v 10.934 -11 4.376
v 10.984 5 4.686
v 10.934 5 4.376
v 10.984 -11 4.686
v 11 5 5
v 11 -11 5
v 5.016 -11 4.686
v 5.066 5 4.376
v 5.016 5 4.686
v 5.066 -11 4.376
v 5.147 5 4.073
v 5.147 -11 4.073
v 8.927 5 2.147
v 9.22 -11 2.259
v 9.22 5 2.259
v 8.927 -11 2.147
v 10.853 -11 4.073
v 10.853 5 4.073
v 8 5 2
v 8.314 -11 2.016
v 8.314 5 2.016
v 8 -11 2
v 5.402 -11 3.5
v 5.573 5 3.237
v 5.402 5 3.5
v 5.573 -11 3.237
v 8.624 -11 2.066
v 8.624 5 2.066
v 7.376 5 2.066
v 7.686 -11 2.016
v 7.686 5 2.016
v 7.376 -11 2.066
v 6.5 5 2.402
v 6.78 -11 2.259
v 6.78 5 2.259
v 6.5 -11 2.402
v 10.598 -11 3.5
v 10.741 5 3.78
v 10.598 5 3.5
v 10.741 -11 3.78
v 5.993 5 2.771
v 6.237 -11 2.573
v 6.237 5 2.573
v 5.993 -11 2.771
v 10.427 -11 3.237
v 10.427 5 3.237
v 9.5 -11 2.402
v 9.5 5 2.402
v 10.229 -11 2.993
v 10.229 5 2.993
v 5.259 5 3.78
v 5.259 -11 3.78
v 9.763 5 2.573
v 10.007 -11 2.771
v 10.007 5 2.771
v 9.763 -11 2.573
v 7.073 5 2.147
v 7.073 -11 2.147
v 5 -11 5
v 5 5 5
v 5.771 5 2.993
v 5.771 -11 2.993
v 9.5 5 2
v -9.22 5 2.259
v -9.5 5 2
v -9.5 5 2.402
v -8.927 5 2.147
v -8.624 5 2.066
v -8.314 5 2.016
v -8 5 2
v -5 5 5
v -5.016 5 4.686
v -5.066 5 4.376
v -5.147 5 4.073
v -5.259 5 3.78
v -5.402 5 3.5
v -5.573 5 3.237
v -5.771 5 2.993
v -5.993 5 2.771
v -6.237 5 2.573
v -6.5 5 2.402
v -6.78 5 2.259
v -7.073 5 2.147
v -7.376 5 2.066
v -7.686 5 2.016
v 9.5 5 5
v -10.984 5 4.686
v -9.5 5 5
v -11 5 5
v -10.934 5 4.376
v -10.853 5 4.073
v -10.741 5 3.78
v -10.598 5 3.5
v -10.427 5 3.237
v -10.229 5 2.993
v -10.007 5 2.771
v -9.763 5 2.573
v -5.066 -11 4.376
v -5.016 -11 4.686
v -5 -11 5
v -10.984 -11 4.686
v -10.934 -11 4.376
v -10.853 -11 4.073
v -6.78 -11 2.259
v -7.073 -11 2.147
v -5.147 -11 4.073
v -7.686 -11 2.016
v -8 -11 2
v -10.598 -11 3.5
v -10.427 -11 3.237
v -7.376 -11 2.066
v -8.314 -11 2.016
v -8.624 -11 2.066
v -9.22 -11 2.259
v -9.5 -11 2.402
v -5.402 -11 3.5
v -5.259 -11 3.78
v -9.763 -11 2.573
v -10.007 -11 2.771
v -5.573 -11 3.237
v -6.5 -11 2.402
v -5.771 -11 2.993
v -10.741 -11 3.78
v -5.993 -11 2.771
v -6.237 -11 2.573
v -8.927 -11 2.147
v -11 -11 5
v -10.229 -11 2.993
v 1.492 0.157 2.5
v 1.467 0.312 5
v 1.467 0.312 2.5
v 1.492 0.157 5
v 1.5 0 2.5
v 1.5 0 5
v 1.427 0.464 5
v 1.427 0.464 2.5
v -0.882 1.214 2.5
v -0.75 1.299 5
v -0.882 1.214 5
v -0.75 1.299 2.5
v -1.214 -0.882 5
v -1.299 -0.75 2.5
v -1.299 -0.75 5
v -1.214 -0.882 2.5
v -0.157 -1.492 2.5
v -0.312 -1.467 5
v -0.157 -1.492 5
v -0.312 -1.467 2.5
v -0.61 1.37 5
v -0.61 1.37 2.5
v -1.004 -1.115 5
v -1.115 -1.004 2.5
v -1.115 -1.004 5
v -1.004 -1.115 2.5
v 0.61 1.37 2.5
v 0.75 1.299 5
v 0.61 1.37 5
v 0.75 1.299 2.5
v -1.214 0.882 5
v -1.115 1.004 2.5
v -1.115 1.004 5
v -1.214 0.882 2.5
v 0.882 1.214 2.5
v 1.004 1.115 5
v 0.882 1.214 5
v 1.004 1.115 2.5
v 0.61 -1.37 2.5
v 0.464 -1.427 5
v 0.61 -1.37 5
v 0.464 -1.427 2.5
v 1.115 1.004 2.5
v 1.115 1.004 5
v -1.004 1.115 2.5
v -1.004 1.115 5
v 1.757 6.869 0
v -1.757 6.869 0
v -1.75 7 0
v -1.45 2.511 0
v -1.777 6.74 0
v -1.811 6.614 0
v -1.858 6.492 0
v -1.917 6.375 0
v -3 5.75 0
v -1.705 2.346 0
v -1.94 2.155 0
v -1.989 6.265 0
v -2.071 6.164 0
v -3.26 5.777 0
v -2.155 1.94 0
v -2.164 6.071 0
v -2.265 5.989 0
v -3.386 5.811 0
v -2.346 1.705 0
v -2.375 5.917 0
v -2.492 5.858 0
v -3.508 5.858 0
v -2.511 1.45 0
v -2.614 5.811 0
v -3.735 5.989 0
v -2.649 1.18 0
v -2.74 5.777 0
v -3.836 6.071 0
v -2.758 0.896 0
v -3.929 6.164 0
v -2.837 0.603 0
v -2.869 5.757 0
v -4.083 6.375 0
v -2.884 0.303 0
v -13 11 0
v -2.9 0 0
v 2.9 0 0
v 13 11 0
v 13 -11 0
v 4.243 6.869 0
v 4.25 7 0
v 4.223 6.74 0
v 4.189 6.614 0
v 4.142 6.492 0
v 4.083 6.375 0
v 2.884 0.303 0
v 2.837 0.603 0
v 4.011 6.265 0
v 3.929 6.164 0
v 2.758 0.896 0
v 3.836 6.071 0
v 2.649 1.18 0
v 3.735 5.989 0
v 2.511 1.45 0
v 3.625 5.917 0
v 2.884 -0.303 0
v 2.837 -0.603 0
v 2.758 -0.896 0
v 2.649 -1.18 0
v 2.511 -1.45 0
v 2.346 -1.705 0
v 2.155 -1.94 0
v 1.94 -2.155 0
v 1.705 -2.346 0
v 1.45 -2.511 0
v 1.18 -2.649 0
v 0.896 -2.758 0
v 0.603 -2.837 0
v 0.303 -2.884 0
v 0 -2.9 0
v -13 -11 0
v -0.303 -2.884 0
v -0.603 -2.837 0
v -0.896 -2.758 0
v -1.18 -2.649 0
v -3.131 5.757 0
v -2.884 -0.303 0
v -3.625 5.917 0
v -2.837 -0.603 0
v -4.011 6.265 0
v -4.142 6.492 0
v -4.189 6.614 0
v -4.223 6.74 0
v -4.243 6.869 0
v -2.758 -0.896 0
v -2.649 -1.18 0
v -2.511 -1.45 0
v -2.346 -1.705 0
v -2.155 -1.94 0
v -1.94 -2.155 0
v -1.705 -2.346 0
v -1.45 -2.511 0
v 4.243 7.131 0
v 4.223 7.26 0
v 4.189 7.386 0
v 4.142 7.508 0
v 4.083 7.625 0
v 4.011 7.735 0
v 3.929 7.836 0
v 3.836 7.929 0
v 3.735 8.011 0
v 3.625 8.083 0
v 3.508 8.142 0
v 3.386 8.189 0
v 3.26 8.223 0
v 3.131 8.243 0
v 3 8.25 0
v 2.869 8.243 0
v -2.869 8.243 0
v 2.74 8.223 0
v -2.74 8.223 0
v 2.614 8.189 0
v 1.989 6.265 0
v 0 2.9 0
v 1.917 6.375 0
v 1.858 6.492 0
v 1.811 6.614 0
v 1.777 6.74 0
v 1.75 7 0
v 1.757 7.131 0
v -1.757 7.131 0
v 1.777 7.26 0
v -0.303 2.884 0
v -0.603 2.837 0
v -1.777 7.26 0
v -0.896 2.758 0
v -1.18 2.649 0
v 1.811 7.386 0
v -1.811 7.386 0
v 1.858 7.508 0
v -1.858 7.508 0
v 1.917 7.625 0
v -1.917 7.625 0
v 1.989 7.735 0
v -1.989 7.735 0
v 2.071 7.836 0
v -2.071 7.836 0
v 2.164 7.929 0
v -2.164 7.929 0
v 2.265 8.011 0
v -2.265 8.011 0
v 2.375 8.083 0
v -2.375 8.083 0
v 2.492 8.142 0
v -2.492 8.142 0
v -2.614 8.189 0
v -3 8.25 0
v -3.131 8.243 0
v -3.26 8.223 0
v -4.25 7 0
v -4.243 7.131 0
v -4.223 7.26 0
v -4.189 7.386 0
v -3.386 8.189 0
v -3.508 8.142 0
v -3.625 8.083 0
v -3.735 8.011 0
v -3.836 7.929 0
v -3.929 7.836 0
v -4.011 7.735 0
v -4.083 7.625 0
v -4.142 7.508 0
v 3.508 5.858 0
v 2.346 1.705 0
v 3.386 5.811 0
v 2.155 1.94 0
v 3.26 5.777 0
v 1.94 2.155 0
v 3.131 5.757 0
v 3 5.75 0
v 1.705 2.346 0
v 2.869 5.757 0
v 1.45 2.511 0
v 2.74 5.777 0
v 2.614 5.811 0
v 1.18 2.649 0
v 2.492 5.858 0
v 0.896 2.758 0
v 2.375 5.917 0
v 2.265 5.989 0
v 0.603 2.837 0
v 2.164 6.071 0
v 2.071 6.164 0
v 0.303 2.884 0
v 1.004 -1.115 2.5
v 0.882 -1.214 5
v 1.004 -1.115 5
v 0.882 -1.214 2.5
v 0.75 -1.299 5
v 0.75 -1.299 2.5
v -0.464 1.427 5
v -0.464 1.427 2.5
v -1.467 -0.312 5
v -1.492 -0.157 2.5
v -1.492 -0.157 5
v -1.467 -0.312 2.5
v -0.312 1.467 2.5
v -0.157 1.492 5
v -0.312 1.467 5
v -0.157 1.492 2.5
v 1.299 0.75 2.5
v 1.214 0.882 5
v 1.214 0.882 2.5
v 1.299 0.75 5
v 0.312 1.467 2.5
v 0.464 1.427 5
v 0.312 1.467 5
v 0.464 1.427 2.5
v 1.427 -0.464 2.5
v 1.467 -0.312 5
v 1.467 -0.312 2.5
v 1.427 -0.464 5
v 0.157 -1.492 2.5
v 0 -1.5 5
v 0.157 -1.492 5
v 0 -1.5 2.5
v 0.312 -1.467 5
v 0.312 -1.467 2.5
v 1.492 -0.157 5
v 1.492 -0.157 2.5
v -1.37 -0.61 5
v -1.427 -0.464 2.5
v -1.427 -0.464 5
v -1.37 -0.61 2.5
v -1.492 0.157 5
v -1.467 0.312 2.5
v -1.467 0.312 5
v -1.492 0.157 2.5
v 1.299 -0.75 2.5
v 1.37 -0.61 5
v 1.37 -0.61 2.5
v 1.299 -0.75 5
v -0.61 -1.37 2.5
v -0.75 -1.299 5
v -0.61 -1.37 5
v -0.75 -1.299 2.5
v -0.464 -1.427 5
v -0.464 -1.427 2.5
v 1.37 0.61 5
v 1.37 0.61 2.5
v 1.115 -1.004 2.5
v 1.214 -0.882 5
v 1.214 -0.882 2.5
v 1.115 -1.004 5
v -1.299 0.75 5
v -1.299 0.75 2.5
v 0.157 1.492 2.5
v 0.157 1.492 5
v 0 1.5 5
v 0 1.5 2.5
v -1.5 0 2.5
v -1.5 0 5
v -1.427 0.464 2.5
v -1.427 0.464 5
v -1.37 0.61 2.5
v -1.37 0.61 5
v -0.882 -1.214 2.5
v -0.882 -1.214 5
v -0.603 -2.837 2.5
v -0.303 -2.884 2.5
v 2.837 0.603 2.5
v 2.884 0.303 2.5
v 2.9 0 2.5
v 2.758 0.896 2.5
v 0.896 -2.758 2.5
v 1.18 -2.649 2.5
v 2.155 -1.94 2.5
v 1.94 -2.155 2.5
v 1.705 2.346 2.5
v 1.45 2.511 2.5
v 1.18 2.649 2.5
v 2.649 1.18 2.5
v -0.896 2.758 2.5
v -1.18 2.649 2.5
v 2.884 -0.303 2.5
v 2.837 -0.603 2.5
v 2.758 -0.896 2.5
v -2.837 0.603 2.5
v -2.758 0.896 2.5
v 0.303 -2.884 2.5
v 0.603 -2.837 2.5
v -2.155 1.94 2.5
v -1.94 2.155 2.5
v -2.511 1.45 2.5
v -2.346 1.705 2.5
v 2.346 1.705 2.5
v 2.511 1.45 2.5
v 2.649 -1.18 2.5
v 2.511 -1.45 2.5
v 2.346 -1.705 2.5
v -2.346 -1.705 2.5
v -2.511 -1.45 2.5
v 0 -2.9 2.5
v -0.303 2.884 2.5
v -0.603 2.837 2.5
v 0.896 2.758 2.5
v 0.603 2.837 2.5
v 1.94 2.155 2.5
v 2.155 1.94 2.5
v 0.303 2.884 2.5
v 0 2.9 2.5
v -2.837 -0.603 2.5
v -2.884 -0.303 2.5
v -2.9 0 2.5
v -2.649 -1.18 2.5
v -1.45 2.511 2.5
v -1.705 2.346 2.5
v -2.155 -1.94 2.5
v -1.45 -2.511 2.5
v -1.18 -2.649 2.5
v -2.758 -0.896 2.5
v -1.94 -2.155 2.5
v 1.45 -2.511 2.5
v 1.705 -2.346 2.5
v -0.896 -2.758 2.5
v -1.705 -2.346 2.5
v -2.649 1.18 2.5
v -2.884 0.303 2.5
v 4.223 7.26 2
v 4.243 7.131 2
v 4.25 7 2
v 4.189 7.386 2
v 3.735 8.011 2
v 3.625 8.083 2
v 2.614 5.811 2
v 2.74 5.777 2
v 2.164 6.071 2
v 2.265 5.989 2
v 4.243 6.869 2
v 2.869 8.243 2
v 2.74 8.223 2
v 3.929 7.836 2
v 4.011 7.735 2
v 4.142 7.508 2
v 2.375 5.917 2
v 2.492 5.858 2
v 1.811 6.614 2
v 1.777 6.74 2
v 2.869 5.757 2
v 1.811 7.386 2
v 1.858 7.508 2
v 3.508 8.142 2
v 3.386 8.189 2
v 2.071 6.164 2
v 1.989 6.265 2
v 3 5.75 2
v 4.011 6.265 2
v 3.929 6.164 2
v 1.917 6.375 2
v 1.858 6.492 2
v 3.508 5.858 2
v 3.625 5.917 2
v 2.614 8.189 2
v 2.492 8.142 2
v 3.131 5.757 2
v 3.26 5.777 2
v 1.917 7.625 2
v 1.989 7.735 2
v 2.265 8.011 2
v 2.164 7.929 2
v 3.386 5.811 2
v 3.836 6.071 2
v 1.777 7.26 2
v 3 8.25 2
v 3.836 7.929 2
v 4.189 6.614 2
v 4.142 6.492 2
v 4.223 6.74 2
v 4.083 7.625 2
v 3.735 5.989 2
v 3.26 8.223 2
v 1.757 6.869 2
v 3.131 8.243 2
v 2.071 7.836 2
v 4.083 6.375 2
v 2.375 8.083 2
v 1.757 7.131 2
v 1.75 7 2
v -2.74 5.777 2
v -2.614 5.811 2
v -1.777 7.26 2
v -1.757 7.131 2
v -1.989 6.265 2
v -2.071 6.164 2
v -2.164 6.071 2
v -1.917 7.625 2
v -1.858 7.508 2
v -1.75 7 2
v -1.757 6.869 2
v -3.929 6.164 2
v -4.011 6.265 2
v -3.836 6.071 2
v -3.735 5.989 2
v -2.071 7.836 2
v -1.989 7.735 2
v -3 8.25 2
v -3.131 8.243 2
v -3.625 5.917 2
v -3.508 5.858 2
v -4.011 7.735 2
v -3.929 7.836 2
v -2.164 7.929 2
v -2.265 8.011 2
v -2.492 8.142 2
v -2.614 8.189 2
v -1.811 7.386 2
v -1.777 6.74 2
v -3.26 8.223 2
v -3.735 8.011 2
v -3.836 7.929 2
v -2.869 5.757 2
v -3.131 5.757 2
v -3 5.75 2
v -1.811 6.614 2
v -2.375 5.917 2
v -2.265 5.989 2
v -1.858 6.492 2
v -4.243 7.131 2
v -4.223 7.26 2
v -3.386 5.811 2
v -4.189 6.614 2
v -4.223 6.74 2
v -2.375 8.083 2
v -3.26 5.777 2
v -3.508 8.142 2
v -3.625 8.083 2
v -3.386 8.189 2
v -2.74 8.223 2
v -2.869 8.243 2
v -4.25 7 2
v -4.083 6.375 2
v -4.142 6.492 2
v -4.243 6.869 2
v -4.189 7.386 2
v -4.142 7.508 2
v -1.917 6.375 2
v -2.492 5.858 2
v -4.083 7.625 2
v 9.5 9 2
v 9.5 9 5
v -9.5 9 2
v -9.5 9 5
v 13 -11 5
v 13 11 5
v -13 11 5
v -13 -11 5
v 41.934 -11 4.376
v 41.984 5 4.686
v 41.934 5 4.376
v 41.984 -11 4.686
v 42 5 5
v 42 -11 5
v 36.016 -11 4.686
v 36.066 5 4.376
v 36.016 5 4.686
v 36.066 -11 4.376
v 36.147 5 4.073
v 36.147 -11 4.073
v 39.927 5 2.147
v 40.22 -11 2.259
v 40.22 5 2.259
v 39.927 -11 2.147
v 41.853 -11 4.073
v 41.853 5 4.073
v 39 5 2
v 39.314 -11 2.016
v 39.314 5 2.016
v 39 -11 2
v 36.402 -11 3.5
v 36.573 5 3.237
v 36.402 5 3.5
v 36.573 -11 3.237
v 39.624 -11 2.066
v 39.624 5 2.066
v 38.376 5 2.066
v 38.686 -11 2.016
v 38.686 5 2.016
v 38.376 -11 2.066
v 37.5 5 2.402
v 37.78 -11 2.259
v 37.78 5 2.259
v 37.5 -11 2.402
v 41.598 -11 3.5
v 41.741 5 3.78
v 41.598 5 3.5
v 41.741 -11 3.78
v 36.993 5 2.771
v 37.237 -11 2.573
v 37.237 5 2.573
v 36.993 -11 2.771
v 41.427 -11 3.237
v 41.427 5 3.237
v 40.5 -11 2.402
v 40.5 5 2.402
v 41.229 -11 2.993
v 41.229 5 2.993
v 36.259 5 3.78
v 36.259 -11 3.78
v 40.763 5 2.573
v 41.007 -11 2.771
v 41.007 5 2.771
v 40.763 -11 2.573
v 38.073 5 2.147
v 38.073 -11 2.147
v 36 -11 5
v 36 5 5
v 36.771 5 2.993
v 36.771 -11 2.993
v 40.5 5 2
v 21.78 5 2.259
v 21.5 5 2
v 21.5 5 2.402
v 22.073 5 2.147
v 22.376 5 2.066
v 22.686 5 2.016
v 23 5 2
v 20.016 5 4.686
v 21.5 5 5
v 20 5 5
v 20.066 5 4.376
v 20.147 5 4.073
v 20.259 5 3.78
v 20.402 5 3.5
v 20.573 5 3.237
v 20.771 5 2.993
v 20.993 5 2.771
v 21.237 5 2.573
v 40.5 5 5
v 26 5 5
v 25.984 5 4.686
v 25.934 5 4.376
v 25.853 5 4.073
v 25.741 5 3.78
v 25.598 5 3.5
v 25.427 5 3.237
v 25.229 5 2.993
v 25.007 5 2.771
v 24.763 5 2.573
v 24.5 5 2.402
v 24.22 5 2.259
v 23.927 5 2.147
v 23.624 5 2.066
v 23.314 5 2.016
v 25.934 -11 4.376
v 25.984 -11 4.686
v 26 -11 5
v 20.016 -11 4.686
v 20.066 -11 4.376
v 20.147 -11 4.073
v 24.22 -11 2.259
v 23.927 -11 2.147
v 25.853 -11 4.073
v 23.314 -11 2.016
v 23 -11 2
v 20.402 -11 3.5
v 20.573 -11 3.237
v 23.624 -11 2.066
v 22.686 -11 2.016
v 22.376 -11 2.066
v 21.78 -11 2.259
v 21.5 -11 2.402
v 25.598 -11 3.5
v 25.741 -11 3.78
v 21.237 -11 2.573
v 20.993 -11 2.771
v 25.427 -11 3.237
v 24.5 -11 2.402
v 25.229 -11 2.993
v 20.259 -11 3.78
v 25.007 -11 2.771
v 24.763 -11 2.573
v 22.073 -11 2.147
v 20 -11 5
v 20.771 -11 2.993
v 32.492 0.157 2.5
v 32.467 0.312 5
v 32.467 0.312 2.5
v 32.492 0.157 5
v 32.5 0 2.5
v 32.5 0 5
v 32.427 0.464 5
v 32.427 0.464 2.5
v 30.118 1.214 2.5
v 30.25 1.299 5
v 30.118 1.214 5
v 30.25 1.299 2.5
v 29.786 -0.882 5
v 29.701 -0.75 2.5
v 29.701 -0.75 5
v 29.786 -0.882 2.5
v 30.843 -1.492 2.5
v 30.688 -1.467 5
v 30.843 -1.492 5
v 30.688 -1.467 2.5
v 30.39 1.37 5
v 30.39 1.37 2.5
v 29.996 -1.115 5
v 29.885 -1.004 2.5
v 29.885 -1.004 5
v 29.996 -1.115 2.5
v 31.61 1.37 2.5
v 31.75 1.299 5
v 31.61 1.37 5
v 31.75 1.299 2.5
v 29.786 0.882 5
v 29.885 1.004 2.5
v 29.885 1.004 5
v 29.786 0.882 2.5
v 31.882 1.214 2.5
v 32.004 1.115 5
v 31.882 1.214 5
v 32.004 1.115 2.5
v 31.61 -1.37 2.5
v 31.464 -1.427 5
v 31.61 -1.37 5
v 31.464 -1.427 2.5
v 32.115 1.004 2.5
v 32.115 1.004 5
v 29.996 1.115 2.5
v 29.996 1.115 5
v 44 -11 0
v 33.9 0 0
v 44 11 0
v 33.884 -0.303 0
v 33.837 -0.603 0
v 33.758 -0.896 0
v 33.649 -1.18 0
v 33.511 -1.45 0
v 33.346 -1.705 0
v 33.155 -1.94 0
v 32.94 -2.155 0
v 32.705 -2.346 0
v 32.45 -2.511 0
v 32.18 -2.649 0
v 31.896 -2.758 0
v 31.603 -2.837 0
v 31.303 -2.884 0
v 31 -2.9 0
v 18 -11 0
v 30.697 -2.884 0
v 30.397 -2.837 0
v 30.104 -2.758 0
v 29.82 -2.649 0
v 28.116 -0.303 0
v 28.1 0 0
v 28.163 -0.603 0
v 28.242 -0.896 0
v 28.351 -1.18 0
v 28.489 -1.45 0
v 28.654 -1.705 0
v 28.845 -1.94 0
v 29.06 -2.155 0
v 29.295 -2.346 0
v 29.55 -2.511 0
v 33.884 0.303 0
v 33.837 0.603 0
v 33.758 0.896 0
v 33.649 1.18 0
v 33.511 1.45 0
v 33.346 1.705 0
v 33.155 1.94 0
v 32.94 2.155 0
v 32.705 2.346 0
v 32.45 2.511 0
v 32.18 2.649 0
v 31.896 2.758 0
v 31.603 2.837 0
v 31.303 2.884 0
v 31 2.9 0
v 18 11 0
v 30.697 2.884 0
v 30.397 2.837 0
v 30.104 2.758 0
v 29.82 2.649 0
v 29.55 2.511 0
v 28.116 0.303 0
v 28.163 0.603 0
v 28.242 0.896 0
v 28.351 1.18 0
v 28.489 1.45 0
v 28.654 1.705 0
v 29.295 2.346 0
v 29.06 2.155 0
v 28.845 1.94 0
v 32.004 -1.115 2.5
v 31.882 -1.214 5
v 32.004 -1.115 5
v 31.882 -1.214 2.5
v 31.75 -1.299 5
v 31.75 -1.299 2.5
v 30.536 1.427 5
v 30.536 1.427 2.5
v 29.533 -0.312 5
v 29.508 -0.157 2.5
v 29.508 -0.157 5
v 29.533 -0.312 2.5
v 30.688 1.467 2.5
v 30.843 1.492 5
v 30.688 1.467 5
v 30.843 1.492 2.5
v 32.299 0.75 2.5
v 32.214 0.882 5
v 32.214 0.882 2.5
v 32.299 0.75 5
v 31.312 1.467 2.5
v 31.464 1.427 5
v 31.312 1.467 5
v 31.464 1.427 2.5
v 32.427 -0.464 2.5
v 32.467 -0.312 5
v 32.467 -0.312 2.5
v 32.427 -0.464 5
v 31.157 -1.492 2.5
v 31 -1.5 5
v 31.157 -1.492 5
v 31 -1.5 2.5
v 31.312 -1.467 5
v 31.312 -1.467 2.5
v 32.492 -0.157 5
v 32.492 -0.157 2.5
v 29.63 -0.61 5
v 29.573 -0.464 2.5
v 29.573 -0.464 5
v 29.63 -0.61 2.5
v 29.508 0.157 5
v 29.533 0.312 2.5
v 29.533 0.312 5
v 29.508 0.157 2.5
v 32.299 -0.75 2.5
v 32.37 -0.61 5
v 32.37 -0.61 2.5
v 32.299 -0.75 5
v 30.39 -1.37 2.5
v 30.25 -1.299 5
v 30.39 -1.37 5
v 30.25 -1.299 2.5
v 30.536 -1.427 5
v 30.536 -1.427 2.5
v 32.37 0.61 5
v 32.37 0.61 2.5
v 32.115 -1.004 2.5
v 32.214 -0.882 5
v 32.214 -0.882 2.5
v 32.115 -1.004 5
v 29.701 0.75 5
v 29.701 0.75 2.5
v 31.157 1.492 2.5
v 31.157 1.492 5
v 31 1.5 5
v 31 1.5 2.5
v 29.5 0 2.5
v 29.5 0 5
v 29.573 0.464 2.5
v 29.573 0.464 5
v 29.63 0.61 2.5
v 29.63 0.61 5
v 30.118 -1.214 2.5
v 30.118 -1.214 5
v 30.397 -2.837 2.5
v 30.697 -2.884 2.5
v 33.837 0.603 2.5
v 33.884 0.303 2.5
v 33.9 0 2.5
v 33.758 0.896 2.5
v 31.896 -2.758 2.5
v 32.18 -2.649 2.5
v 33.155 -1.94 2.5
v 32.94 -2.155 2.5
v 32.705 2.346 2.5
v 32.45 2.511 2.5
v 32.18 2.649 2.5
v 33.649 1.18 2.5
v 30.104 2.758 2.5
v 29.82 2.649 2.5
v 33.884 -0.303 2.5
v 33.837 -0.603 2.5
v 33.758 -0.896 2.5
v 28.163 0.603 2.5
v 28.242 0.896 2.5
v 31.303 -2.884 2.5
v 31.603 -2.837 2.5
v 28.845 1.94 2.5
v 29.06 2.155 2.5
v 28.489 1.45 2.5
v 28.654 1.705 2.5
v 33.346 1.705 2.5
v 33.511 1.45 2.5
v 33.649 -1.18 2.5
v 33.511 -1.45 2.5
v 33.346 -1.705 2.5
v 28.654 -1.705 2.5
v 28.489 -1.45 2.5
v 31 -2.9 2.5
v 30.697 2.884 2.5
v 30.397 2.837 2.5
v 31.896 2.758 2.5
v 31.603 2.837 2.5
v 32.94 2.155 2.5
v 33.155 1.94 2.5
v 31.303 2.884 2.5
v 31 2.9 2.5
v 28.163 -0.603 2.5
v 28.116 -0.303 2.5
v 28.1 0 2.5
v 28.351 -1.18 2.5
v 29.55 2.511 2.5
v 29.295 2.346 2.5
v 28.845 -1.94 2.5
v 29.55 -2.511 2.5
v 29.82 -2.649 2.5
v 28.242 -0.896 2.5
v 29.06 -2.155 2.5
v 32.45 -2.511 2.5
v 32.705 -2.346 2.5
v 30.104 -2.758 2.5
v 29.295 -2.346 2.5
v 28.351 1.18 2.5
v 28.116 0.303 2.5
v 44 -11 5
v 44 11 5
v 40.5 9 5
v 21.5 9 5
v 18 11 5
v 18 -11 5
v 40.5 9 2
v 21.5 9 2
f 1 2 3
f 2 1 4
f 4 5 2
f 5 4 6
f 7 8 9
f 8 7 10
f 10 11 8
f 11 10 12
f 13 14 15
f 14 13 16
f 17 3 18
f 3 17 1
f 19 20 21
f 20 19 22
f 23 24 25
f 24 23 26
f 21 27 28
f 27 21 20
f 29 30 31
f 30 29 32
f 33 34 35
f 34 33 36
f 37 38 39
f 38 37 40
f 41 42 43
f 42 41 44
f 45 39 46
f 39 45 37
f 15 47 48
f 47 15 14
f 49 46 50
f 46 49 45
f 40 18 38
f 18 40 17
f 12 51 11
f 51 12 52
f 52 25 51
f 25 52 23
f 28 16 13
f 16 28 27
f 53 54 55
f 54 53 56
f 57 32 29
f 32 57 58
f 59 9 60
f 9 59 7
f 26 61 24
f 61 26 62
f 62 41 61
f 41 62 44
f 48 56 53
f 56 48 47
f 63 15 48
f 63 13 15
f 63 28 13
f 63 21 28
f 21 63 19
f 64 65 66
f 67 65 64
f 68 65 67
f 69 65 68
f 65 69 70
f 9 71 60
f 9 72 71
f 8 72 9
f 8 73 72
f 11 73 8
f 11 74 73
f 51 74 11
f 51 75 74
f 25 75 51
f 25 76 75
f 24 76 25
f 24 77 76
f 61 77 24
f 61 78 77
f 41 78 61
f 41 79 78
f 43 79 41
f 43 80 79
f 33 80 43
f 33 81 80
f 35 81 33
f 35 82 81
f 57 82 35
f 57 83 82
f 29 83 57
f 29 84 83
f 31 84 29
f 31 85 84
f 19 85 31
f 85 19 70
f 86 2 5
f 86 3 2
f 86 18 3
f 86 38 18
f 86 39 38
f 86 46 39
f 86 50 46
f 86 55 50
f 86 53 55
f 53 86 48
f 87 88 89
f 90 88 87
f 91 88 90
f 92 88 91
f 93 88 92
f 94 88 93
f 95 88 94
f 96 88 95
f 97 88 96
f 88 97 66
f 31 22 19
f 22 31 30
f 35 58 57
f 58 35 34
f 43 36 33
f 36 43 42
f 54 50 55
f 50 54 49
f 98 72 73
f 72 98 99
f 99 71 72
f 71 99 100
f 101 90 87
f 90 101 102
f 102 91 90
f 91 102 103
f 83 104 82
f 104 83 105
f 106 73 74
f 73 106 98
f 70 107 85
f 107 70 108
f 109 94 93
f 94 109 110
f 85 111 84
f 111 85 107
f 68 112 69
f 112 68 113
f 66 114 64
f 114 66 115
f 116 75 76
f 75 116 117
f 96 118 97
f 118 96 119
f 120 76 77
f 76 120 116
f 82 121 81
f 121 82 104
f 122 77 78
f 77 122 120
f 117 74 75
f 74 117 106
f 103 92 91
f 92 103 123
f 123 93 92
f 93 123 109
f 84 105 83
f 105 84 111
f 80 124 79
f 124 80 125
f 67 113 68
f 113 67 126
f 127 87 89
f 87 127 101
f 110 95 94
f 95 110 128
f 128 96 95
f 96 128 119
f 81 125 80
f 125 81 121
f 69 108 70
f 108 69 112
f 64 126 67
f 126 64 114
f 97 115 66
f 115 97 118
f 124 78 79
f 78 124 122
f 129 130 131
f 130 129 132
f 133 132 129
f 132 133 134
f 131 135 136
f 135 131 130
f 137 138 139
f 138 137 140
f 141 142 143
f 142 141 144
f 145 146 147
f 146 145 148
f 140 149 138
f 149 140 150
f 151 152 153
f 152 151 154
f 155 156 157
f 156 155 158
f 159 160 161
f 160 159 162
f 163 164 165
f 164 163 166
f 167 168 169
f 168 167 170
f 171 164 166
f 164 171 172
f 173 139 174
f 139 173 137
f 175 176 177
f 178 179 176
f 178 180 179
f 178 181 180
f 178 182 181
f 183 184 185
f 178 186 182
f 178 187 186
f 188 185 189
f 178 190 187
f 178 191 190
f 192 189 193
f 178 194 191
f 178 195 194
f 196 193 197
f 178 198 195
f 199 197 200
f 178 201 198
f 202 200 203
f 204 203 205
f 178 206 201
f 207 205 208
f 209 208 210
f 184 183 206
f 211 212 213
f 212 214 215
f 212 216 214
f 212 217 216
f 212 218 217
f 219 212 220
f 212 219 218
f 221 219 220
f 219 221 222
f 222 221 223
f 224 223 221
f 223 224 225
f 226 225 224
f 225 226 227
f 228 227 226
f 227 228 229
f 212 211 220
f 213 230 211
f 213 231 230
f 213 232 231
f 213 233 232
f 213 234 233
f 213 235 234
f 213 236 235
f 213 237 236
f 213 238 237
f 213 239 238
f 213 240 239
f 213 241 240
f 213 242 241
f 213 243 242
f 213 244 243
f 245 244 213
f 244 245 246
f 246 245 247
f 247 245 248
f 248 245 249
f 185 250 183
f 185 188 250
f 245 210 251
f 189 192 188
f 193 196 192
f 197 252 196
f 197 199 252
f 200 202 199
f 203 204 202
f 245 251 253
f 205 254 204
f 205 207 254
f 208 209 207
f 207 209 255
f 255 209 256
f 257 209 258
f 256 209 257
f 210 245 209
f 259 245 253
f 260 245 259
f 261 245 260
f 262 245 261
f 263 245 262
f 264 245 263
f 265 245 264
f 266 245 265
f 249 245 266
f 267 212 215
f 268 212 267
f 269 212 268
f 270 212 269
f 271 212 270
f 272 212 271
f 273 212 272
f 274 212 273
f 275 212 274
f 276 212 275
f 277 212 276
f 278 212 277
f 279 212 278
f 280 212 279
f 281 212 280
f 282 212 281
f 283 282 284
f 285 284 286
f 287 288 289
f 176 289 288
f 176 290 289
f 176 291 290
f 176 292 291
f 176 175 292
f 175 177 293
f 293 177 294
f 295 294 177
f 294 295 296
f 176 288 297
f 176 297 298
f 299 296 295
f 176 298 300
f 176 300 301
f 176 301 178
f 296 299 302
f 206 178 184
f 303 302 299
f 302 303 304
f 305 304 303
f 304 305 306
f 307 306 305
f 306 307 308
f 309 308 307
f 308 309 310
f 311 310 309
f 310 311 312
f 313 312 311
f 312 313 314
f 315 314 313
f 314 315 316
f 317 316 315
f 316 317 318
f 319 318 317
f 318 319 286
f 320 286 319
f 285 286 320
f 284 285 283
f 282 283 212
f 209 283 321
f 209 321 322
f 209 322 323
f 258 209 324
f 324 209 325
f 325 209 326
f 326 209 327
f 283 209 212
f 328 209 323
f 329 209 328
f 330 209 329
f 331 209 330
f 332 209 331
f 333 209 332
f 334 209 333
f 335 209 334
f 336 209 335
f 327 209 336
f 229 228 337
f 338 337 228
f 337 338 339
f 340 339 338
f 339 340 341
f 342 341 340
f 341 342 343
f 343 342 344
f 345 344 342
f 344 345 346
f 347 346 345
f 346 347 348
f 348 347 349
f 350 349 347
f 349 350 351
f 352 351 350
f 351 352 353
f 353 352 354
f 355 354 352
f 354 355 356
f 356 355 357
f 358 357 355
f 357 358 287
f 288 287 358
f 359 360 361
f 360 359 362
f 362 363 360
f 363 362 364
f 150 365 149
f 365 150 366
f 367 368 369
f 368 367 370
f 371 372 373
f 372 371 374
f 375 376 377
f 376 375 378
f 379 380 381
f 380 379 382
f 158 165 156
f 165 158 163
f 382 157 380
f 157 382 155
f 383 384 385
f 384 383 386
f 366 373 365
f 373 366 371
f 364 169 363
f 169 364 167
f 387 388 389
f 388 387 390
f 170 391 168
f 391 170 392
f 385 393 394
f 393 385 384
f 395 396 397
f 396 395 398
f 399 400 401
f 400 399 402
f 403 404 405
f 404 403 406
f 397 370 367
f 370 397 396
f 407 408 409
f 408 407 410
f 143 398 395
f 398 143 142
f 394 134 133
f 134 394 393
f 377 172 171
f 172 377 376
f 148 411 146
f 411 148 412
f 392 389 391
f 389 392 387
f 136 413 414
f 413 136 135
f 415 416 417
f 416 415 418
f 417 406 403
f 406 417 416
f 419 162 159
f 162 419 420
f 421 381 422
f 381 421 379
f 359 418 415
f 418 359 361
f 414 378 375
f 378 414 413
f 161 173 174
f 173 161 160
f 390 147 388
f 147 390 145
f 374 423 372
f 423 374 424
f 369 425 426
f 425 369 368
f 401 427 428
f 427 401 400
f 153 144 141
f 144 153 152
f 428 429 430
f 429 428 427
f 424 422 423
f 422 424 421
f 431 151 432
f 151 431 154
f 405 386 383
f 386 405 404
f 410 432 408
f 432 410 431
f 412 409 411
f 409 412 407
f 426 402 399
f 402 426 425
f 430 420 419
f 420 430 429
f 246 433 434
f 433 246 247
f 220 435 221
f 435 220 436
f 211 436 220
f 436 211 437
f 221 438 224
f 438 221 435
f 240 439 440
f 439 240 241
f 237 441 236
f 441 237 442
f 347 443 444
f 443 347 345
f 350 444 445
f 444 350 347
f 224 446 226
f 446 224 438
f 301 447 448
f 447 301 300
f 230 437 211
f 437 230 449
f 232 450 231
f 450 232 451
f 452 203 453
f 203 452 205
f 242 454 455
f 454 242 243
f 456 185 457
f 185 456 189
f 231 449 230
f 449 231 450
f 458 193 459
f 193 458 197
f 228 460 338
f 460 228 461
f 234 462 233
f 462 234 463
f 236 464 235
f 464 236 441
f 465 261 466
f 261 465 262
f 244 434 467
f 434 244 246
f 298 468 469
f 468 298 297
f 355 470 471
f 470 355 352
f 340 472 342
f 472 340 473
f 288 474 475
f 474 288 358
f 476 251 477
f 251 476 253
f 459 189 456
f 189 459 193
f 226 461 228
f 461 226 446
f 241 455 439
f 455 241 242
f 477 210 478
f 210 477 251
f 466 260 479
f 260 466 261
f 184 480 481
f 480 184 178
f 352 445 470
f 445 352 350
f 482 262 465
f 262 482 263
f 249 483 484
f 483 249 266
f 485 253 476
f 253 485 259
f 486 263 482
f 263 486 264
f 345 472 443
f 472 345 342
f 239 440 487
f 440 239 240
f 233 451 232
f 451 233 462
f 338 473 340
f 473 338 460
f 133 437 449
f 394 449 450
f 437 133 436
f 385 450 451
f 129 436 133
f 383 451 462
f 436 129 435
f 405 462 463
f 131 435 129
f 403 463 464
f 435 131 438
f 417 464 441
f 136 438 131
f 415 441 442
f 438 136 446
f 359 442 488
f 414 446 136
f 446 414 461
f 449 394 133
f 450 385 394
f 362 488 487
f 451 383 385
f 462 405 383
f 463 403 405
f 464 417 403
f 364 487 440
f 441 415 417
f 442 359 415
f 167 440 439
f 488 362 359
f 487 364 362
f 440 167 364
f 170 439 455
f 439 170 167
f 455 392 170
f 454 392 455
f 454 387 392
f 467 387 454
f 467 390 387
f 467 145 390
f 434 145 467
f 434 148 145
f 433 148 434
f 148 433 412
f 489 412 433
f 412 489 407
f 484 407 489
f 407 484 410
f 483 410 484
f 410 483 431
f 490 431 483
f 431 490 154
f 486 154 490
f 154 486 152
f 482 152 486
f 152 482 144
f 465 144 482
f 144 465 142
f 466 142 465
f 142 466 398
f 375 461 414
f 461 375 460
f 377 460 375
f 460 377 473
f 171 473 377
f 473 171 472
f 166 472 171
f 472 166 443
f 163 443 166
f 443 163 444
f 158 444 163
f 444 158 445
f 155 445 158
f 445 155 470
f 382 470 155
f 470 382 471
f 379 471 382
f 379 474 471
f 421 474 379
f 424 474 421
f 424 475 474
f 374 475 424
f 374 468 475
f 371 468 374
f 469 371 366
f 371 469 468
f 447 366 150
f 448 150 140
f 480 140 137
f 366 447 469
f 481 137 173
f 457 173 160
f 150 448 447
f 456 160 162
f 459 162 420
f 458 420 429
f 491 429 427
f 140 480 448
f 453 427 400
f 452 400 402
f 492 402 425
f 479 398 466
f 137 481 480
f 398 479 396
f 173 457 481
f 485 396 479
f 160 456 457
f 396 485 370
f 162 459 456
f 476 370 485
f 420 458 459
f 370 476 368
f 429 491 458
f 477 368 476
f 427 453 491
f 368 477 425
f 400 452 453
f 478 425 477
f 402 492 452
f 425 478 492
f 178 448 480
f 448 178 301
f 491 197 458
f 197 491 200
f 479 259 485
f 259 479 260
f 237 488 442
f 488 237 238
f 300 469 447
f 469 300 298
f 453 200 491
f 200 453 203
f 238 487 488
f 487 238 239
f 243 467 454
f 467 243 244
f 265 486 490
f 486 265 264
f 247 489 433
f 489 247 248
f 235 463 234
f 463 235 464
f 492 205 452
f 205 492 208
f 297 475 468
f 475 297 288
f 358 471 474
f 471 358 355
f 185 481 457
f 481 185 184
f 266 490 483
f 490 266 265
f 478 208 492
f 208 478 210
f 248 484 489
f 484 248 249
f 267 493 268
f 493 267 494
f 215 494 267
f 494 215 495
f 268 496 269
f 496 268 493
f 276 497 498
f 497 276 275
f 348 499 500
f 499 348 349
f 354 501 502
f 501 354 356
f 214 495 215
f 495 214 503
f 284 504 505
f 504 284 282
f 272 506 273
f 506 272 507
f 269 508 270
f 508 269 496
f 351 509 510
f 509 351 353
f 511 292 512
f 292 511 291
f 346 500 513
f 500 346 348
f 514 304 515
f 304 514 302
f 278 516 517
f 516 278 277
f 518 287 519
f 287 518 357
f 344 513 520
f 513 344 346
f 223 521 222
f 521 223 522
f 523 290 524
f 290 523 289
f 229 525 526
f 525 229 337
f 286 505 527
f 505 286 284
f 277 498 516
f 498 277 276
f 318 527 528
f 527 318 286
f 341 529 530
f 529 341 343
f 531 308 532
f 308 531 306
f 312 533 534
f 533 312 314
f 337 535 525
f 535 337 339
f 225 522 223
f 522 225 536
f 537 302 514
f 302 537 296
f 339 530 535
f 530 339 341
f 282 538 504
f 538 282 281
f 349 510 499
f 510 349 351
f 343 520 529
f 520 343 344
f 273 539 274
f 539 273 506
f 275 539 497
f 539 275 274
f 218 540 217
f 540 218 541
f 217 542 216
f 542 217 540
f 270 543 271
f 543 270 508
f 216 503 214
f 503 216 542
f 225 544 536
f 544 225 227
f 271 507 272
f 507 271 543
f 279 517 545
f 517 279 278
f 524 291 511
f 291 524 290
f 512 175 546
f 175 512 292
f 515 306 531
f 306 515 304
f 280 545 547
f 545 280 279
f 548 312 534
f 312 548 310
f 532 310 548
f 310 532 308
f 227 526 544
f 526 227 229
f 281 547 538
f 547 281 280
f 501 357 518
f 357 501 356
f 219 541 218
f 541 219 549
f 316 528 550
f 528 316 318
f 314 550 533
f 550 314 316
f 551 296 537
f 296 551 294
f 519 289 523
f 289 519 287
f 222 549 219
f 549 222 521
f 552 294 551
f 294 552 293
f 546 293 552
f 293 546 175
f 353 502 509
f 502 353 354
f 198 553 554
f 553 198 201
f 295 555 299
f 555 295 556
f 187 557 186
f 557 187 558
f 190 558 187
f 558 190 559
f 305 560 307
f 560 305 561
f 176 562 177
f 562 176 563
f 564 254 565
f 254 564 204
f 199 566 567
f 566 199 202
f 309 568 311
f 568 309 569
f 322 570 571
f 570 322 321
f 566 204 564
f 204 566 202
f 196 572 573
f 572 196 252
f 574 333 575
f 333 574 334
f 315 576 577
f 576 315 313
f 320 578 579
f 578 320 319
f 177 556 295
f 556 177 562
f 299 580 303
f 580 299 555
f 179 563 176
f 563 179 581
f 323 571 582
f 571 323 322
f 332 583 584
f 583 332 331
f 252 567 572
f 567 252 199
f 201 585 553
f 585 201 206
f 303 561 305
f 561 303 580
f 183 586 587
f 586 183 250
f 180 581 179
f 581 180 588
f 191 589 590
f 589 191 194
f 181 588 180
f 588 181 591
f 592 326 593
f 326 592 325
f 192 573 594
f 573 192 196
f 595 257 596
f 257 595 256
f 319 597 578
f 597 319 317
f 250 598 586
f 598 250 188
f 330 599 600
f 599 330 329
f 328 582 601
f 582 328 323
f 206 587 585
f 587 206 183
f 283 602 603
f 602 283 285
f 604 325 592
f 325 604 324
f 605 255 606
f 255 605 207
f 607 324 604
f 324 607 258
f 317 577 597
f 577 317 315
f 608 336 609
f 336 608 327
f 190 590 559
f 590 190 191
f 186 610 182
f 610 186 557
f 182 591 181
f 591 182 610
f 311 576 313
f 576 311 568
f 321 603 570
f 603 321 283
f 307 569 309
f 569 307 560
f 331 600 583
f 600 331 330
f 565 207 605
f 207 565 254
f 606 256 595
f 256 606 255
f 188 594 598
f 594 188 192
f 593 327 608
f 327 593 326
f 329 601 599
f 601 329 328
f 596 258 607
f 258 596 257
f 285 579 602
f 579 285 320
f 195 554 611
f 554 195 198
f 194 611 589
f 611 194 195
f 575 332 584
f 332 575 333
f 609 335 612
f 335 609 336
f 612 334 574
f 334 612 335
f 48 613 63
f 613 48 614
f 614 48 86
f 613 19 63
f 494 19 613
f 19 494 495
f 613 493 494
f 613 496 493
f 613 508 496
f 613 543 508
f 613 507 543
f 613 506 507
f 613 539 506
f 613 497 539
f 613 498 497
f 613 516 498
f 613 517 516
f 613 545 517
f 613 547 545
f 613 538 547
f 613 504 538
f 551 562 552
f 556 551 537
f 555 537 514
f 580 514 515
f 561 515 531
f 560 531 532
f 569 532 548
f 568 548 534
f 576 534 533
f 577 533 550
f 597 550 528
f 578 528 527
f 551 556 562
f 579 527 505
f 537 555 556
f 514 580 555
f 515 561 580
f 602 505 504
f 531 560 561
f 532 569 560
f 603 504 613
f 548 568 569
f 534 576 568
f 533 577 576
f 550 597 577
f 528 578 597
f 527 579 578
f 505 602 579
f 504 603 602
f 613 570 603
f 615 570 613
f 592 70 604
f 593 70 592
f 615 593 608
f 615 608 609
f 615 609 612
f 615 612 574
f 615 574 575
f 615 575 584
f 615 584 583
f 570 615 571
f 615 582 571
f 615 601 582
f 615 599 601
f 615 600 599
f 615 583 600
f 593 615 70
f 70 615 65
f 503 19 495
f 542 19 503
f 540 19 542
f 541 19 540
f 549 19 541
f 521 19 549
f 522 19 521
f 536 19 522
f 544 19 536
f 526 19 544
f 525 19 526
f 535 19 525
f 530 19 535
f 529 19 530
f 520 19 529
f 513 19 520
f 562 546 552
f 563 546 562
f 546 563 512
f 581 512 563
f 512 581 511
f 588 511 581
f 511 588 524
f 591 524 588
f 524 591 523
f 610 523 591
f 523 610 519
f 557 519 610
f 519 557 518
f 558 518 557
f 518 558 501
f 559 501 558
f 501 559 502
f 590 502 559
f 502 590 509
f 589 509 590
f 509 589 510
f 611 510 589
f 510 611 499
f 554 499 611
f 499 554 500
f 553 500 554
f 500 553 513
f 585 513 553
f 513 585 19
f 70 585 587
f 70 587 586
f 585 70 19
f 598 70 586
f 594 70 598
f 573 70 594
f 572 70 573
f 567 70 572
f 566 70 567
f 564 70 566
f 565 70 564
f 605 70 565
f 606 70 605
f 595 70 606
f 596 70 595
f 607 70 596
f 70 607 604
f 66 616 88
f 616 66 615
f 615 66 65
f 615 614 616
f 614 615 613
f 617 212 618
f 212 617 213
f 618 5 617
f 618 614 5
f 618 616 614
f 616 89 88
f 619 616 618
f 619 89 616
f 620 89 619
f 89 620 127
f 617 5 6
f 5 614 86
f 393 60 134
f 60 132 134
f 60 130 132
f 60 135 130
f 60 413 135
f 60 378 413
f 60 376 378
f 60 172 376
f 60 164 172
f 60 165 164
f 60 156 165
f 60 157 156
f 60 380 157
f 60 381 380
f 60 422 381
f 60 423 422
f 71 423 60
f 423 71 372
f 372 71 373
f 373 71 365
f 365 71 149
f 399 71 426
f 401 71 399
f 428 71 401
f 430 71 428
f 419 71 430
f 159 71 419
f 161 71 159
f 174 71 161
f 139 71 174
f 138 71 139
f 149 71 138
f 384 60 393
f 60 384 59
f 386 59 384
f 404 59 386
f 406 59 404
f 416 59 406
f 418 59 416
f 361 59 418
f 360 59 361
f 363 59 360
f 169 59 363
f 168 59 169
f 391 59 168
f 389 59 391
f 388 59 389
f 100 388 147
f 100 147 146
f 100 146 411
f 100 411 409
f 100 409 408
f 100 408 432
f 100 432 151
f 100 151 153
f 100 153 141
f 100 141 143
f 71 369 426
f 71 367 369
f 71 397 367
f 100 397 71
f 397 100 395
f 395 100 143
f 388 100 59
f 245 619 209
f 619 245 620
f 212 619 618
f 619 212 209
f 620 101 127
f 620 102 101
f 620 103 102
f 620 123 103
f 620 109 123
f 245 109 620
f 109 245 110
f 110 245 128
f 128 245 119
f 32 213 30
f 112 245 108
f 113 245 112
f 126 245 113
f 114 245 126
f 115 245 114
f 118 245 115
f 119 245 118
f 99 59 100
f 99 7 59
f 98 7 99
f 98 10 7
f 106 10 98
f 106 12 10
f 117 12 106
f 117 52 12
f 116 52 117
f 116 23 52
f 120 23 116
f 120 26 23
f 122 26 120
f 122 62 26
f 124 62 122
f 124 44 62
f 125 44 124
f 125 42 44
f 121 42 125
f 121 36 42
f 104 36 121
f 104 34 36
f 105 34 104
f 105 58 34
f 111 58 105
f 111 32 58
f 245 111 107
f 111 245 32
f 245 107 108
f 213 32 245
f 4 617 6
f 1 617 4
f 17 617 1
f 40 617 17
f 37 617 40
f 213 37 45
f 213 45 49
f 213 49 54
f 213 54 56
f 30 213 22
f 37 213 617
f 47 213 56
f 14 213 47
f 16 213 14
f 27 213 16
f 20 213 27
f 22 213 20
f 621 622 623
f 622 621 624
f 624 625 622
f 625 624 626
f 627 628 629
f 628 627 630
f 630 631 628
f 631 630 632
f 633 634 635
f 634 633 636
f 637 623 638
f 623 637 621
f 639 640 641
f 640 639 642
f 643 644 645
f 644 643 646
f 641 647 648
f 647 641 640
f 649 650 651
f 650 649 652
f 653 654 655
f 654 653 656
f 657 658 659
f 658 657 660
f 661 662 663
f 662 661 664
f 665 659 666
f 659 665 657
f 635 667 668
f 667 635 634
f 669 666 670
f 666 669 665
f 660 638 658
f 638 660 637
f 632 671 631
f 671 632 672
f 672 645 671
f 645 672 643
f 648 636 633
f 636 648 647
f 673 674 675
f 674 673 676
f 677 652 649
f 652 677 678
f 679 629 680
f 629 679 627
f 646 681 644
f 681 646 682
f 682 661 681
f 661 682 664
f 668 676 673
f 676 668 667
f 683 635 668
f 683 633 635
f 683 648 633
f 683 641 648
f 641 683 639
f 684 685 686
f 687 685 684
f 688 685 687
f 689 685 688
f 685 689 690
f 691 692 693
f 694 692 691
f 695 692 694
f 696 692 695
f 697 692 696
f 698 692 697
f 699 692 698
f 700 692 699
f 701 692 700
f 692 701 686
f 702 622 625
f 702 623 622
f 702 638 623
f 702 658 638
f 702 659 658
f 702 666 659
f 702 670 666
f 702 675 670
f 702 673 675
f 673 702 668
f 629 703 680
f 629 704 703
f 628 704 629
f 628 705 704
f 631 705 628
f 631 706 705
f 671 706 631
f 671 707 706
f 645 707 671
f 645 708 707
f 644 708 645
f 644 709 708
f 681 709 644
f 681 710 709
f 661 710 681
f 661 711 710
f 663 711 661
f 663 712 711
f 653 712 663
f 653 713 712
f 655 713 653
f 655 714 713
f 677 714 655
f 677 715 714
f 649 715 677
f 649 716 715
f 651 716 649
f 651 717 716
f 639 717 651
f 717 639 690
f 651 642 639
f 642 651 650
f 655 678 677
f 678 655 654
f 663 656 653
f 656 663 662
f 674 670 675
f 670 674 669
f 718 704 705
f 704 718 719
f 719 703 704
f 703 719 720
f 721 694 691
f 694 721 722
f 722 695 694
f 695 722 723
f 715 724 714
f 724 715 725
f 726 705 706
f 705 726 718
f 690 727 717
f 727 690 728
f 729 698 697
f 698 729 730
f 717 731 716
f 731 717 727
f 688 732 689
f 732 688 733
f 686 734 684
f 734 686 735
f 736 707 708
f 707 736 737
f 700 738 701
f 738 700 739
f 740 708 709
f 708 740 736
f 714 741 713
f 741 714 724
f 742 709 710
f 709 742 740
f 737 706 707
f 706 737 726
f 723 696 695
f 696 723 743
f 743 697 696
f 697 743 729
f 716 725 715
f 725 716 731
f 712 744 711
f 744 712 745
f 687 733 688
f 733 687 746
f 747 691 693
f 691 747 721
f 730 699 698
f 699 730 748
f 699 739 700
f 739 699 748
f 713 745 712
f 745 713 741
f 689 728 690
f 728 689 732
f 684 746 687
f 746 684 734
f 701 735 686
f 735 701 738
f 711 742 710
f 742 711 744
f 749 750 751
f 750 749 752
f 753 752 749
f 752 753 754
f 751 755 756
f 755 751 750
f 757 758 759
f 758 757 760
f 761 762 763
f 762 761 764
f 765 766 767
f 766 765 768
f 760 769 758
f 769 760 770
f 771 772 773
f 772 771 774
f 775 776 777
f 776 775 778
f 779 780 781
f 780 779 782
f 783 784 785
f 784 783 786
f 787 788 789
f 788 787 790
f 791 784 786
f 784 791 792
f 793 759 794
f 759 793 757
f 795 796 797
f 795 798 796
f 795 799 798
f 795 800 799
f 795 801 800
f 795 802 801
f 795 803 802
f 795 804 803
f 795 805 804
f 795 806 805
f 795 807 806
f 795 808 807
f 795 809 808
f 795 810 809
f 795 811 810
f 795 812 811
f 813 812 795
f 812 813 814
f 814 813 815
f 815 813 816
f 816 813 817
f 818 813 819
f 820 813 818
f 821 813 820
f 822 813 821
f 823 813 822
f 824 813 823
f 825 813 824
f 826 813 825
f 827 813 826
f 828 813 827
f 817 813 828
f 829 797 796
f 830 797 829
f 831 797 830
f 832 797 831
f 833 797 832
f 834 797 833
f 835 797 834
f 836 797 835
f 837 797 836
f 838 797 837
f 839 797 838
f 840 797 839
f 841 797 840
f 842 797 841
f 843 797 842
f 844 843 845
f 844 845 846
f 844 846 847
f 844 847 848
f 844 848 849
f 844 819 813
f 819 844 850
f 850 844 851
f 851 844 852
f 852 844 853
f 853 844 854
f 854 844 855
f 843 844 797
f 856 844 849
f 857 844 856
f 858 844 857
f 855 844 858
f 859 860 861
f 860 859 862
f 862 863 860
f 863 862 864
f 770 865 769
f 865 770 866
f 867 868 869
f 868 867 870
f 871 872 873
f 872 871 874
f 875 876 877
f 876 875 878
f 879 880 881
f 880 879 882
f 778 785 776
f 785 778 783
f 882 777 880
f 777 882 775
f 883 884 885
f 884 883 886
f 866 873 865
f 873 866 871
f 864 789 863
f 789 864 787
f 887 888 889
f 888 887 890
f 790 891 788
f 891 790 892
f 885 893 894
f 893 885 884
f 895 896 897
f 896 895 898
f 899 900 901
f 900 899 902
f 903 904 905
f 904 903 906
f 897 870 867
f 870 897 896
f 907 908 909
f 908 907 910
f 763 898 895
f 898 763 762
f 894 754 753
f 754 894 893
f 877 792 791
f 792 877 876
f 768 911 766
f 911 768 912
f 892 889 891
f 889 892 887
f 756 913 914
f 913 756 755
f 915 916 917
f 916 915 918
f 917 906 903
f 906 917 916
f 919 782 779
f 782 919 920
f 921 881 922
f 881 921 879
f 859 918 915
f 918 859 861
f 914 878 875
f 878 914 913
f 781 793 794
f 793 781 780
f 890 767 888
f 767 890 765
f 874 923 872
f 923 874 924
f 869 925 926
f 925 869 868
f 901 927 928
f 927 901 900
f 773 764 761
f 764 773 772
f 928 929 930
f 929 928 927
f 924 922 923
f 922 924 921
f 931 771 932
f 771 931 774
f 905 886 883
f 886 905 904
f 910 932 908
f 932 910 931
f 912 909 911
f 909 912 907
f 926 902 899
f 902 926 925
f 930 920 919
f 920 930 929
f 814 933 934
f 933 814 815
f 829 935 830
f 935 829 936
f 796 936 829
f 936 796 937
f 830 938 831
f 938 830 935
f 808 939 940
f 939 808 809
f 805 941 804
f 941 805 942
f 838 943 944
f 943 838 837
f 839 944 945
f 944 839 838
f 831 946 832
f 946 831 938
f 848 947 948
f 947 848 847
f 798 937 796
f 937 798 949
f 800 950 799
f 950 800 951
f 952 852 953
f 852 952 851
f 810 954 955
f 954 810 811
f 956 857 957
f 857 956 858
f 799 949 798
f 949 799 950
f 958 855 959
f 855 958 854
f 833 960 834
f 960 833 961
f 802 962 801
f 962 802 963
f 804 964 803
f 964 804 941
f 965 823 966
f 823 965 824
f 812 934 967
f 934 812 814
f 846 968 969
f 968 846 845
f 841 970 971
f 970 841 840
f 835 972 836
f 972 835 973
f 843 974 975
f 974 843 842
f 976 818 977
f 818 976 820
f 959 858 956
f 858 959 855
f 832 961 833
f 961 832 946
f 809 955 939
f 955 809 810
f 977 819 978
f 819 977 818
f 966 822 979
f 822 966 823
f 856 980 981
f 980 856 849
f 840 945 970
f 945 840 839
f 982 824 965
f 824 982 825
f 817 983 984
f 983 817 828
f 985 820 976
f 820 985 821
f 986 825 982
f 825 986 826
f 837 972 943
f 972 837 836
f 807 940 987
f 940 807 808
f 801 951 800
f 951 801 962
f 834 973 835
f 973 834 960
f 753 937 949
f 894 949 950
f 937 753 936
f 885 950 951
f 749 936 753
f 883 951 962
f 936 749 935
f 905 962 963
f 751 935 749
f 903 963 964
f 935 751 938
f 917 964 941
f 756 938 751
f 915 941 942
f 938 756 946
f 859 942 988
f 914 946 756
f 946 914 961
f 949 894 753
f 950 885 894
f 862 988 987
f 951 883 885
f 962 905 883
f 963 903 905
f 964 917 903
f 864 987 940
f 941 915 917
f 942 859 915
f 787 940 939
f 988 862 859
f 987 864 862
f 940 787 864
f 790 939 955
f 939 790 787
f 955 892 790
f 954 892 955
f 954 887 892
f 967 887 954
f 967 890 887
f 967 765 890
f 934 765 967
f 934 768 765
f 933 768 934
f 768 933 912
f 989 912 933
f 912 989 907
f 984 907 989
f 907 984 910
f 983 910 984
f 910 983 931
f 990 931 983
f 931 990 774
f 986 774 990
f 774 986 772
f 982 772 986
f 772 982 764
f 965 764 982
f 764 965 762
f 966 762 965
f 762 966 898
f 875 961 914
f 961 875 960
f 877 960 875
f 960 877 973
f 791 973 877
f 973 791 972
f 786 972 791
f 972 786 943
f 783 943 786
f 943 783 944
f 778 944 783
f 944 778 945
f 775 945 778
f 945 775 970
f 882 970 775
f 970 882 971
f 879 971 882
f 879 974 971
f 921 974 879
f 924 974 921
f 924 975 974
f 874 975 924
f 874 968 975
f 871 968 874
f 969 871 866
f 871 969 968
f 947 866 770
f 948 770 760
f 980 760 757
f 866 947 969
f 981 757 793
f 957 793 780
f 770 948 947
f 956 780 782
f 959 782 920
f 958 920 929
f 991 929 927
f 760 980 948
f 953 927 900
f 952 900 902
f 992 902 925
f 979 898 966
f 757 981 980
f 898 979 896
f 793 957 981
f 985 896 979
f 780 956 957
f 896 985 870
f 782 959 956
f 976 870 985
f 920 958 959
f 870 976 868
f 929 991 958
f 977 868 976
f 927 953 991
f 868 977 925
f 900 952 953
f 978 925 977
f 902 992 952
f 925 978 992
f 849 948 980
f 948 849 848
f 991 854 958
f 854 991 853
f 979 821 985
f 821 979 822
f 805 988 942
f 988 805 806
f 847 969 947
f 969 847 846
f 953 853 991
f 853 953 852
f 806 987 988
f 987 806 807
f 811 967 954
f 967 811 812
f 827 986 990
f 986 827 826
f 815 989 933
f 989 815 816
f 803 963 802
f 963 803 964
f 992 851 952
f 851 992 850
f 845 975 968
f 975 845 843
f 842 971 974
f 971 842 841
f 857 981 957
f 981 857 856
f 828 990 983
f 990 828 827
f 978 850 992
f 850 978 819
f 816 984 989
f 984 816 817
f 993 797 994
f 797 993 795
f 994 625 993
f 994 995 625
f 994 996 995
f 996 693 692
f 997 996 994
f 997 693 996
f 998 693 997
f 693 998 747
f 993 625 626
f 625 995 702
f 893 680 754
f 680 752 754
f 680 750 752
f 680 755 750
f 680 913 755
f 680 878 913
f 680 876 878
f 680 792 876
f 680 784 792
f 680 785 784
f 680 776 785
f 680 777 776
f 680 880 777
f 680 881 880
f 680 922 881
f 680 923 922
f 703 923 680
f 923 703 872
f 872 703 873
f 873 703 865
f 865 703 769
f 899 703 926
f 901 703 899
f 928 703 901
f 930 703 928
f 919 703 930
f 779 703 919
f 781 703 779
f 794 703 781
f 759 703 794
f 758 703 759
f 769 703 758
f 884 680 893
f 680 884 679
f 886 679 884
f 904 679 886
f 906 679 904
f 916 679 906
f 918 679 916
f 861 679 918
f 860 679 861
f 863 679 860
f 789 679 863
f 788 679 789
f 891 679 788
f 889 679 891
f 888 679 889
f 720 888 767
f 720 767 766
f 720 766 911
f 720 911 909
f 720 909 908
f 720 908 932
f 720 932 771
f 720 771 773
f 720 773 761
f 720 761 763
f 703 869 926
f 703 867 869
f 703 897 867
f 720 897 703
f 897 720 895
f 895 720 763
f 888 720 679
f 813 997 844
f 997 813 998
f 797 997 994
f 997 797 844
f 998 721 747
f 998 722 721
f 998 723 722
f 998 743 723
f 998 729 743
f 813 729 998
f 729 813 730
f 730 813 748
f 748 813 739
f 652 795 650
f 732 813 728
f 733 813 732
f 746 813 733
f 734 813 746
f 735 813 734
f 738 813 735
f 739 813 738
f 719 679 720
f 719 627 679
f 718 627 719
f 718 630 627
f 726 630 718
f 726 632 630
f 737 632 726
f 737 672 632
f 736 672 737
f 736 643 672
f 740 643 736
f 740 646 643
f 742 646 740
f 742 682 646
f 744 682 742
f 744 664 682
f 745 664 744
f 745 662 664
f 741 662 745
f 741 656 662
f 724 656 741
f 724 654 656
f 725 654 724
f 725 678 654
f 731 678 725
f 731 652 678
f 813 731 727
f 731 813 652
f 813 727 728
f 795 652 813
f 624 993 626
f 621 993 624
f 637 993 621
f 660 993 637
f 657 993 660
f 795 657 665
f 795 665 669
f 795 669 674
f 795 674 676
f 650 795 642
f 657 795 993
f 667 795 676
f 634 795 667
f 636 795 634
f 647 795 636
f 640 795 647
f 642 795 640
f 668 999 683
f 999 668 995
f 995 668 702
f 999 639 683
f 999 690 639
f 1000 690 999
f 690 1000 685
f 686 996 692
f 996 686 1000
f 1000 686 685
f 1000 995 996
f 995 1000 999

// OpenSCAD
$fn=60;

// Diameter of probe
probeDiam=6;        
// Spacing between probe
probeSpacing=16;
// THickness of wall
wall=2.0;

// Length of probe (Visual only)
probeLength=120;

// Diameter of screw
screwDiam=3;
// Height of screw head
screwHead=2.5;
// Diameter of screw head
screwHeadDiam=5.8;

///Offset probe from center of casing
probeEndOffset=5;

// Do not change below
wall2=wall*2;
probeSpacingD2=probeSpacing/2;
dim=[probeSpacing + probeDiam + wall2,probeEndOffset*2+4*2+wall2,probeDiam+wall2];

echo("Casing dimention ");
echo(dim);


soilProbe(true);
translate([dim.x+5,0,0]) soilProbe(false);

module soilProbe(bottom=true) {
    translate([0,0,dim.z/2])
    union() {
        difference() {
            union() {
                cube(dim, center=true);
                
            }
            union() {
                // Cut in half
                translate([0,0,dim.z]) cube([dim.x*2,dim.y*2,dim.z*2], center=true);

                // Room for Wire
                translate([0,probeEndOffset+2,0]) {
                    cube([probeSpacing+probeDiam/2,4,probeDiam], center=true);
                    if (bottom) {
                        translate([3,0,0]) cylinder(d=2.5,h=dim.z,center=true);
                        translate([-3,0,0]) cylinder(d=2.5,h=dim.z,center=true);
                    }
                }
                
                // Probe
                translate([probeSpacingD2,probeEndOffset,0]) probe();
                translate([-probeSpacingD2,probeEndOffset,0]) probe();      
                
                // screw Portion
                screw();
            }
        }

        if (bottom) {
            %translate([probeSpacingD2,probeEndOffset,0]) probe();
            %translate([-probeSpacingD2,probeEndOffset,0]) probe();
        }
    }
}


module screw() {
    cylinder(d=screwDiam,h=dim.z,center=true);
    translate([0,0,-dim.z/2+screwHead/2]) cylinder(d=screwHeadDiam,h=screwHead,center=true);
}    


module probe() {
    pointL=probeDiam*2.5;
    color([0.4,.4,.4,0.5]) rotate([90,0,0]) {
        cylinder(d=probeDiam,h=probeLength-pointL);
        translate([0,0,probeLength-pointL]) cylinder(d2=0, d1=probeDiam, h=probeDiam*2.5);
    }

}
